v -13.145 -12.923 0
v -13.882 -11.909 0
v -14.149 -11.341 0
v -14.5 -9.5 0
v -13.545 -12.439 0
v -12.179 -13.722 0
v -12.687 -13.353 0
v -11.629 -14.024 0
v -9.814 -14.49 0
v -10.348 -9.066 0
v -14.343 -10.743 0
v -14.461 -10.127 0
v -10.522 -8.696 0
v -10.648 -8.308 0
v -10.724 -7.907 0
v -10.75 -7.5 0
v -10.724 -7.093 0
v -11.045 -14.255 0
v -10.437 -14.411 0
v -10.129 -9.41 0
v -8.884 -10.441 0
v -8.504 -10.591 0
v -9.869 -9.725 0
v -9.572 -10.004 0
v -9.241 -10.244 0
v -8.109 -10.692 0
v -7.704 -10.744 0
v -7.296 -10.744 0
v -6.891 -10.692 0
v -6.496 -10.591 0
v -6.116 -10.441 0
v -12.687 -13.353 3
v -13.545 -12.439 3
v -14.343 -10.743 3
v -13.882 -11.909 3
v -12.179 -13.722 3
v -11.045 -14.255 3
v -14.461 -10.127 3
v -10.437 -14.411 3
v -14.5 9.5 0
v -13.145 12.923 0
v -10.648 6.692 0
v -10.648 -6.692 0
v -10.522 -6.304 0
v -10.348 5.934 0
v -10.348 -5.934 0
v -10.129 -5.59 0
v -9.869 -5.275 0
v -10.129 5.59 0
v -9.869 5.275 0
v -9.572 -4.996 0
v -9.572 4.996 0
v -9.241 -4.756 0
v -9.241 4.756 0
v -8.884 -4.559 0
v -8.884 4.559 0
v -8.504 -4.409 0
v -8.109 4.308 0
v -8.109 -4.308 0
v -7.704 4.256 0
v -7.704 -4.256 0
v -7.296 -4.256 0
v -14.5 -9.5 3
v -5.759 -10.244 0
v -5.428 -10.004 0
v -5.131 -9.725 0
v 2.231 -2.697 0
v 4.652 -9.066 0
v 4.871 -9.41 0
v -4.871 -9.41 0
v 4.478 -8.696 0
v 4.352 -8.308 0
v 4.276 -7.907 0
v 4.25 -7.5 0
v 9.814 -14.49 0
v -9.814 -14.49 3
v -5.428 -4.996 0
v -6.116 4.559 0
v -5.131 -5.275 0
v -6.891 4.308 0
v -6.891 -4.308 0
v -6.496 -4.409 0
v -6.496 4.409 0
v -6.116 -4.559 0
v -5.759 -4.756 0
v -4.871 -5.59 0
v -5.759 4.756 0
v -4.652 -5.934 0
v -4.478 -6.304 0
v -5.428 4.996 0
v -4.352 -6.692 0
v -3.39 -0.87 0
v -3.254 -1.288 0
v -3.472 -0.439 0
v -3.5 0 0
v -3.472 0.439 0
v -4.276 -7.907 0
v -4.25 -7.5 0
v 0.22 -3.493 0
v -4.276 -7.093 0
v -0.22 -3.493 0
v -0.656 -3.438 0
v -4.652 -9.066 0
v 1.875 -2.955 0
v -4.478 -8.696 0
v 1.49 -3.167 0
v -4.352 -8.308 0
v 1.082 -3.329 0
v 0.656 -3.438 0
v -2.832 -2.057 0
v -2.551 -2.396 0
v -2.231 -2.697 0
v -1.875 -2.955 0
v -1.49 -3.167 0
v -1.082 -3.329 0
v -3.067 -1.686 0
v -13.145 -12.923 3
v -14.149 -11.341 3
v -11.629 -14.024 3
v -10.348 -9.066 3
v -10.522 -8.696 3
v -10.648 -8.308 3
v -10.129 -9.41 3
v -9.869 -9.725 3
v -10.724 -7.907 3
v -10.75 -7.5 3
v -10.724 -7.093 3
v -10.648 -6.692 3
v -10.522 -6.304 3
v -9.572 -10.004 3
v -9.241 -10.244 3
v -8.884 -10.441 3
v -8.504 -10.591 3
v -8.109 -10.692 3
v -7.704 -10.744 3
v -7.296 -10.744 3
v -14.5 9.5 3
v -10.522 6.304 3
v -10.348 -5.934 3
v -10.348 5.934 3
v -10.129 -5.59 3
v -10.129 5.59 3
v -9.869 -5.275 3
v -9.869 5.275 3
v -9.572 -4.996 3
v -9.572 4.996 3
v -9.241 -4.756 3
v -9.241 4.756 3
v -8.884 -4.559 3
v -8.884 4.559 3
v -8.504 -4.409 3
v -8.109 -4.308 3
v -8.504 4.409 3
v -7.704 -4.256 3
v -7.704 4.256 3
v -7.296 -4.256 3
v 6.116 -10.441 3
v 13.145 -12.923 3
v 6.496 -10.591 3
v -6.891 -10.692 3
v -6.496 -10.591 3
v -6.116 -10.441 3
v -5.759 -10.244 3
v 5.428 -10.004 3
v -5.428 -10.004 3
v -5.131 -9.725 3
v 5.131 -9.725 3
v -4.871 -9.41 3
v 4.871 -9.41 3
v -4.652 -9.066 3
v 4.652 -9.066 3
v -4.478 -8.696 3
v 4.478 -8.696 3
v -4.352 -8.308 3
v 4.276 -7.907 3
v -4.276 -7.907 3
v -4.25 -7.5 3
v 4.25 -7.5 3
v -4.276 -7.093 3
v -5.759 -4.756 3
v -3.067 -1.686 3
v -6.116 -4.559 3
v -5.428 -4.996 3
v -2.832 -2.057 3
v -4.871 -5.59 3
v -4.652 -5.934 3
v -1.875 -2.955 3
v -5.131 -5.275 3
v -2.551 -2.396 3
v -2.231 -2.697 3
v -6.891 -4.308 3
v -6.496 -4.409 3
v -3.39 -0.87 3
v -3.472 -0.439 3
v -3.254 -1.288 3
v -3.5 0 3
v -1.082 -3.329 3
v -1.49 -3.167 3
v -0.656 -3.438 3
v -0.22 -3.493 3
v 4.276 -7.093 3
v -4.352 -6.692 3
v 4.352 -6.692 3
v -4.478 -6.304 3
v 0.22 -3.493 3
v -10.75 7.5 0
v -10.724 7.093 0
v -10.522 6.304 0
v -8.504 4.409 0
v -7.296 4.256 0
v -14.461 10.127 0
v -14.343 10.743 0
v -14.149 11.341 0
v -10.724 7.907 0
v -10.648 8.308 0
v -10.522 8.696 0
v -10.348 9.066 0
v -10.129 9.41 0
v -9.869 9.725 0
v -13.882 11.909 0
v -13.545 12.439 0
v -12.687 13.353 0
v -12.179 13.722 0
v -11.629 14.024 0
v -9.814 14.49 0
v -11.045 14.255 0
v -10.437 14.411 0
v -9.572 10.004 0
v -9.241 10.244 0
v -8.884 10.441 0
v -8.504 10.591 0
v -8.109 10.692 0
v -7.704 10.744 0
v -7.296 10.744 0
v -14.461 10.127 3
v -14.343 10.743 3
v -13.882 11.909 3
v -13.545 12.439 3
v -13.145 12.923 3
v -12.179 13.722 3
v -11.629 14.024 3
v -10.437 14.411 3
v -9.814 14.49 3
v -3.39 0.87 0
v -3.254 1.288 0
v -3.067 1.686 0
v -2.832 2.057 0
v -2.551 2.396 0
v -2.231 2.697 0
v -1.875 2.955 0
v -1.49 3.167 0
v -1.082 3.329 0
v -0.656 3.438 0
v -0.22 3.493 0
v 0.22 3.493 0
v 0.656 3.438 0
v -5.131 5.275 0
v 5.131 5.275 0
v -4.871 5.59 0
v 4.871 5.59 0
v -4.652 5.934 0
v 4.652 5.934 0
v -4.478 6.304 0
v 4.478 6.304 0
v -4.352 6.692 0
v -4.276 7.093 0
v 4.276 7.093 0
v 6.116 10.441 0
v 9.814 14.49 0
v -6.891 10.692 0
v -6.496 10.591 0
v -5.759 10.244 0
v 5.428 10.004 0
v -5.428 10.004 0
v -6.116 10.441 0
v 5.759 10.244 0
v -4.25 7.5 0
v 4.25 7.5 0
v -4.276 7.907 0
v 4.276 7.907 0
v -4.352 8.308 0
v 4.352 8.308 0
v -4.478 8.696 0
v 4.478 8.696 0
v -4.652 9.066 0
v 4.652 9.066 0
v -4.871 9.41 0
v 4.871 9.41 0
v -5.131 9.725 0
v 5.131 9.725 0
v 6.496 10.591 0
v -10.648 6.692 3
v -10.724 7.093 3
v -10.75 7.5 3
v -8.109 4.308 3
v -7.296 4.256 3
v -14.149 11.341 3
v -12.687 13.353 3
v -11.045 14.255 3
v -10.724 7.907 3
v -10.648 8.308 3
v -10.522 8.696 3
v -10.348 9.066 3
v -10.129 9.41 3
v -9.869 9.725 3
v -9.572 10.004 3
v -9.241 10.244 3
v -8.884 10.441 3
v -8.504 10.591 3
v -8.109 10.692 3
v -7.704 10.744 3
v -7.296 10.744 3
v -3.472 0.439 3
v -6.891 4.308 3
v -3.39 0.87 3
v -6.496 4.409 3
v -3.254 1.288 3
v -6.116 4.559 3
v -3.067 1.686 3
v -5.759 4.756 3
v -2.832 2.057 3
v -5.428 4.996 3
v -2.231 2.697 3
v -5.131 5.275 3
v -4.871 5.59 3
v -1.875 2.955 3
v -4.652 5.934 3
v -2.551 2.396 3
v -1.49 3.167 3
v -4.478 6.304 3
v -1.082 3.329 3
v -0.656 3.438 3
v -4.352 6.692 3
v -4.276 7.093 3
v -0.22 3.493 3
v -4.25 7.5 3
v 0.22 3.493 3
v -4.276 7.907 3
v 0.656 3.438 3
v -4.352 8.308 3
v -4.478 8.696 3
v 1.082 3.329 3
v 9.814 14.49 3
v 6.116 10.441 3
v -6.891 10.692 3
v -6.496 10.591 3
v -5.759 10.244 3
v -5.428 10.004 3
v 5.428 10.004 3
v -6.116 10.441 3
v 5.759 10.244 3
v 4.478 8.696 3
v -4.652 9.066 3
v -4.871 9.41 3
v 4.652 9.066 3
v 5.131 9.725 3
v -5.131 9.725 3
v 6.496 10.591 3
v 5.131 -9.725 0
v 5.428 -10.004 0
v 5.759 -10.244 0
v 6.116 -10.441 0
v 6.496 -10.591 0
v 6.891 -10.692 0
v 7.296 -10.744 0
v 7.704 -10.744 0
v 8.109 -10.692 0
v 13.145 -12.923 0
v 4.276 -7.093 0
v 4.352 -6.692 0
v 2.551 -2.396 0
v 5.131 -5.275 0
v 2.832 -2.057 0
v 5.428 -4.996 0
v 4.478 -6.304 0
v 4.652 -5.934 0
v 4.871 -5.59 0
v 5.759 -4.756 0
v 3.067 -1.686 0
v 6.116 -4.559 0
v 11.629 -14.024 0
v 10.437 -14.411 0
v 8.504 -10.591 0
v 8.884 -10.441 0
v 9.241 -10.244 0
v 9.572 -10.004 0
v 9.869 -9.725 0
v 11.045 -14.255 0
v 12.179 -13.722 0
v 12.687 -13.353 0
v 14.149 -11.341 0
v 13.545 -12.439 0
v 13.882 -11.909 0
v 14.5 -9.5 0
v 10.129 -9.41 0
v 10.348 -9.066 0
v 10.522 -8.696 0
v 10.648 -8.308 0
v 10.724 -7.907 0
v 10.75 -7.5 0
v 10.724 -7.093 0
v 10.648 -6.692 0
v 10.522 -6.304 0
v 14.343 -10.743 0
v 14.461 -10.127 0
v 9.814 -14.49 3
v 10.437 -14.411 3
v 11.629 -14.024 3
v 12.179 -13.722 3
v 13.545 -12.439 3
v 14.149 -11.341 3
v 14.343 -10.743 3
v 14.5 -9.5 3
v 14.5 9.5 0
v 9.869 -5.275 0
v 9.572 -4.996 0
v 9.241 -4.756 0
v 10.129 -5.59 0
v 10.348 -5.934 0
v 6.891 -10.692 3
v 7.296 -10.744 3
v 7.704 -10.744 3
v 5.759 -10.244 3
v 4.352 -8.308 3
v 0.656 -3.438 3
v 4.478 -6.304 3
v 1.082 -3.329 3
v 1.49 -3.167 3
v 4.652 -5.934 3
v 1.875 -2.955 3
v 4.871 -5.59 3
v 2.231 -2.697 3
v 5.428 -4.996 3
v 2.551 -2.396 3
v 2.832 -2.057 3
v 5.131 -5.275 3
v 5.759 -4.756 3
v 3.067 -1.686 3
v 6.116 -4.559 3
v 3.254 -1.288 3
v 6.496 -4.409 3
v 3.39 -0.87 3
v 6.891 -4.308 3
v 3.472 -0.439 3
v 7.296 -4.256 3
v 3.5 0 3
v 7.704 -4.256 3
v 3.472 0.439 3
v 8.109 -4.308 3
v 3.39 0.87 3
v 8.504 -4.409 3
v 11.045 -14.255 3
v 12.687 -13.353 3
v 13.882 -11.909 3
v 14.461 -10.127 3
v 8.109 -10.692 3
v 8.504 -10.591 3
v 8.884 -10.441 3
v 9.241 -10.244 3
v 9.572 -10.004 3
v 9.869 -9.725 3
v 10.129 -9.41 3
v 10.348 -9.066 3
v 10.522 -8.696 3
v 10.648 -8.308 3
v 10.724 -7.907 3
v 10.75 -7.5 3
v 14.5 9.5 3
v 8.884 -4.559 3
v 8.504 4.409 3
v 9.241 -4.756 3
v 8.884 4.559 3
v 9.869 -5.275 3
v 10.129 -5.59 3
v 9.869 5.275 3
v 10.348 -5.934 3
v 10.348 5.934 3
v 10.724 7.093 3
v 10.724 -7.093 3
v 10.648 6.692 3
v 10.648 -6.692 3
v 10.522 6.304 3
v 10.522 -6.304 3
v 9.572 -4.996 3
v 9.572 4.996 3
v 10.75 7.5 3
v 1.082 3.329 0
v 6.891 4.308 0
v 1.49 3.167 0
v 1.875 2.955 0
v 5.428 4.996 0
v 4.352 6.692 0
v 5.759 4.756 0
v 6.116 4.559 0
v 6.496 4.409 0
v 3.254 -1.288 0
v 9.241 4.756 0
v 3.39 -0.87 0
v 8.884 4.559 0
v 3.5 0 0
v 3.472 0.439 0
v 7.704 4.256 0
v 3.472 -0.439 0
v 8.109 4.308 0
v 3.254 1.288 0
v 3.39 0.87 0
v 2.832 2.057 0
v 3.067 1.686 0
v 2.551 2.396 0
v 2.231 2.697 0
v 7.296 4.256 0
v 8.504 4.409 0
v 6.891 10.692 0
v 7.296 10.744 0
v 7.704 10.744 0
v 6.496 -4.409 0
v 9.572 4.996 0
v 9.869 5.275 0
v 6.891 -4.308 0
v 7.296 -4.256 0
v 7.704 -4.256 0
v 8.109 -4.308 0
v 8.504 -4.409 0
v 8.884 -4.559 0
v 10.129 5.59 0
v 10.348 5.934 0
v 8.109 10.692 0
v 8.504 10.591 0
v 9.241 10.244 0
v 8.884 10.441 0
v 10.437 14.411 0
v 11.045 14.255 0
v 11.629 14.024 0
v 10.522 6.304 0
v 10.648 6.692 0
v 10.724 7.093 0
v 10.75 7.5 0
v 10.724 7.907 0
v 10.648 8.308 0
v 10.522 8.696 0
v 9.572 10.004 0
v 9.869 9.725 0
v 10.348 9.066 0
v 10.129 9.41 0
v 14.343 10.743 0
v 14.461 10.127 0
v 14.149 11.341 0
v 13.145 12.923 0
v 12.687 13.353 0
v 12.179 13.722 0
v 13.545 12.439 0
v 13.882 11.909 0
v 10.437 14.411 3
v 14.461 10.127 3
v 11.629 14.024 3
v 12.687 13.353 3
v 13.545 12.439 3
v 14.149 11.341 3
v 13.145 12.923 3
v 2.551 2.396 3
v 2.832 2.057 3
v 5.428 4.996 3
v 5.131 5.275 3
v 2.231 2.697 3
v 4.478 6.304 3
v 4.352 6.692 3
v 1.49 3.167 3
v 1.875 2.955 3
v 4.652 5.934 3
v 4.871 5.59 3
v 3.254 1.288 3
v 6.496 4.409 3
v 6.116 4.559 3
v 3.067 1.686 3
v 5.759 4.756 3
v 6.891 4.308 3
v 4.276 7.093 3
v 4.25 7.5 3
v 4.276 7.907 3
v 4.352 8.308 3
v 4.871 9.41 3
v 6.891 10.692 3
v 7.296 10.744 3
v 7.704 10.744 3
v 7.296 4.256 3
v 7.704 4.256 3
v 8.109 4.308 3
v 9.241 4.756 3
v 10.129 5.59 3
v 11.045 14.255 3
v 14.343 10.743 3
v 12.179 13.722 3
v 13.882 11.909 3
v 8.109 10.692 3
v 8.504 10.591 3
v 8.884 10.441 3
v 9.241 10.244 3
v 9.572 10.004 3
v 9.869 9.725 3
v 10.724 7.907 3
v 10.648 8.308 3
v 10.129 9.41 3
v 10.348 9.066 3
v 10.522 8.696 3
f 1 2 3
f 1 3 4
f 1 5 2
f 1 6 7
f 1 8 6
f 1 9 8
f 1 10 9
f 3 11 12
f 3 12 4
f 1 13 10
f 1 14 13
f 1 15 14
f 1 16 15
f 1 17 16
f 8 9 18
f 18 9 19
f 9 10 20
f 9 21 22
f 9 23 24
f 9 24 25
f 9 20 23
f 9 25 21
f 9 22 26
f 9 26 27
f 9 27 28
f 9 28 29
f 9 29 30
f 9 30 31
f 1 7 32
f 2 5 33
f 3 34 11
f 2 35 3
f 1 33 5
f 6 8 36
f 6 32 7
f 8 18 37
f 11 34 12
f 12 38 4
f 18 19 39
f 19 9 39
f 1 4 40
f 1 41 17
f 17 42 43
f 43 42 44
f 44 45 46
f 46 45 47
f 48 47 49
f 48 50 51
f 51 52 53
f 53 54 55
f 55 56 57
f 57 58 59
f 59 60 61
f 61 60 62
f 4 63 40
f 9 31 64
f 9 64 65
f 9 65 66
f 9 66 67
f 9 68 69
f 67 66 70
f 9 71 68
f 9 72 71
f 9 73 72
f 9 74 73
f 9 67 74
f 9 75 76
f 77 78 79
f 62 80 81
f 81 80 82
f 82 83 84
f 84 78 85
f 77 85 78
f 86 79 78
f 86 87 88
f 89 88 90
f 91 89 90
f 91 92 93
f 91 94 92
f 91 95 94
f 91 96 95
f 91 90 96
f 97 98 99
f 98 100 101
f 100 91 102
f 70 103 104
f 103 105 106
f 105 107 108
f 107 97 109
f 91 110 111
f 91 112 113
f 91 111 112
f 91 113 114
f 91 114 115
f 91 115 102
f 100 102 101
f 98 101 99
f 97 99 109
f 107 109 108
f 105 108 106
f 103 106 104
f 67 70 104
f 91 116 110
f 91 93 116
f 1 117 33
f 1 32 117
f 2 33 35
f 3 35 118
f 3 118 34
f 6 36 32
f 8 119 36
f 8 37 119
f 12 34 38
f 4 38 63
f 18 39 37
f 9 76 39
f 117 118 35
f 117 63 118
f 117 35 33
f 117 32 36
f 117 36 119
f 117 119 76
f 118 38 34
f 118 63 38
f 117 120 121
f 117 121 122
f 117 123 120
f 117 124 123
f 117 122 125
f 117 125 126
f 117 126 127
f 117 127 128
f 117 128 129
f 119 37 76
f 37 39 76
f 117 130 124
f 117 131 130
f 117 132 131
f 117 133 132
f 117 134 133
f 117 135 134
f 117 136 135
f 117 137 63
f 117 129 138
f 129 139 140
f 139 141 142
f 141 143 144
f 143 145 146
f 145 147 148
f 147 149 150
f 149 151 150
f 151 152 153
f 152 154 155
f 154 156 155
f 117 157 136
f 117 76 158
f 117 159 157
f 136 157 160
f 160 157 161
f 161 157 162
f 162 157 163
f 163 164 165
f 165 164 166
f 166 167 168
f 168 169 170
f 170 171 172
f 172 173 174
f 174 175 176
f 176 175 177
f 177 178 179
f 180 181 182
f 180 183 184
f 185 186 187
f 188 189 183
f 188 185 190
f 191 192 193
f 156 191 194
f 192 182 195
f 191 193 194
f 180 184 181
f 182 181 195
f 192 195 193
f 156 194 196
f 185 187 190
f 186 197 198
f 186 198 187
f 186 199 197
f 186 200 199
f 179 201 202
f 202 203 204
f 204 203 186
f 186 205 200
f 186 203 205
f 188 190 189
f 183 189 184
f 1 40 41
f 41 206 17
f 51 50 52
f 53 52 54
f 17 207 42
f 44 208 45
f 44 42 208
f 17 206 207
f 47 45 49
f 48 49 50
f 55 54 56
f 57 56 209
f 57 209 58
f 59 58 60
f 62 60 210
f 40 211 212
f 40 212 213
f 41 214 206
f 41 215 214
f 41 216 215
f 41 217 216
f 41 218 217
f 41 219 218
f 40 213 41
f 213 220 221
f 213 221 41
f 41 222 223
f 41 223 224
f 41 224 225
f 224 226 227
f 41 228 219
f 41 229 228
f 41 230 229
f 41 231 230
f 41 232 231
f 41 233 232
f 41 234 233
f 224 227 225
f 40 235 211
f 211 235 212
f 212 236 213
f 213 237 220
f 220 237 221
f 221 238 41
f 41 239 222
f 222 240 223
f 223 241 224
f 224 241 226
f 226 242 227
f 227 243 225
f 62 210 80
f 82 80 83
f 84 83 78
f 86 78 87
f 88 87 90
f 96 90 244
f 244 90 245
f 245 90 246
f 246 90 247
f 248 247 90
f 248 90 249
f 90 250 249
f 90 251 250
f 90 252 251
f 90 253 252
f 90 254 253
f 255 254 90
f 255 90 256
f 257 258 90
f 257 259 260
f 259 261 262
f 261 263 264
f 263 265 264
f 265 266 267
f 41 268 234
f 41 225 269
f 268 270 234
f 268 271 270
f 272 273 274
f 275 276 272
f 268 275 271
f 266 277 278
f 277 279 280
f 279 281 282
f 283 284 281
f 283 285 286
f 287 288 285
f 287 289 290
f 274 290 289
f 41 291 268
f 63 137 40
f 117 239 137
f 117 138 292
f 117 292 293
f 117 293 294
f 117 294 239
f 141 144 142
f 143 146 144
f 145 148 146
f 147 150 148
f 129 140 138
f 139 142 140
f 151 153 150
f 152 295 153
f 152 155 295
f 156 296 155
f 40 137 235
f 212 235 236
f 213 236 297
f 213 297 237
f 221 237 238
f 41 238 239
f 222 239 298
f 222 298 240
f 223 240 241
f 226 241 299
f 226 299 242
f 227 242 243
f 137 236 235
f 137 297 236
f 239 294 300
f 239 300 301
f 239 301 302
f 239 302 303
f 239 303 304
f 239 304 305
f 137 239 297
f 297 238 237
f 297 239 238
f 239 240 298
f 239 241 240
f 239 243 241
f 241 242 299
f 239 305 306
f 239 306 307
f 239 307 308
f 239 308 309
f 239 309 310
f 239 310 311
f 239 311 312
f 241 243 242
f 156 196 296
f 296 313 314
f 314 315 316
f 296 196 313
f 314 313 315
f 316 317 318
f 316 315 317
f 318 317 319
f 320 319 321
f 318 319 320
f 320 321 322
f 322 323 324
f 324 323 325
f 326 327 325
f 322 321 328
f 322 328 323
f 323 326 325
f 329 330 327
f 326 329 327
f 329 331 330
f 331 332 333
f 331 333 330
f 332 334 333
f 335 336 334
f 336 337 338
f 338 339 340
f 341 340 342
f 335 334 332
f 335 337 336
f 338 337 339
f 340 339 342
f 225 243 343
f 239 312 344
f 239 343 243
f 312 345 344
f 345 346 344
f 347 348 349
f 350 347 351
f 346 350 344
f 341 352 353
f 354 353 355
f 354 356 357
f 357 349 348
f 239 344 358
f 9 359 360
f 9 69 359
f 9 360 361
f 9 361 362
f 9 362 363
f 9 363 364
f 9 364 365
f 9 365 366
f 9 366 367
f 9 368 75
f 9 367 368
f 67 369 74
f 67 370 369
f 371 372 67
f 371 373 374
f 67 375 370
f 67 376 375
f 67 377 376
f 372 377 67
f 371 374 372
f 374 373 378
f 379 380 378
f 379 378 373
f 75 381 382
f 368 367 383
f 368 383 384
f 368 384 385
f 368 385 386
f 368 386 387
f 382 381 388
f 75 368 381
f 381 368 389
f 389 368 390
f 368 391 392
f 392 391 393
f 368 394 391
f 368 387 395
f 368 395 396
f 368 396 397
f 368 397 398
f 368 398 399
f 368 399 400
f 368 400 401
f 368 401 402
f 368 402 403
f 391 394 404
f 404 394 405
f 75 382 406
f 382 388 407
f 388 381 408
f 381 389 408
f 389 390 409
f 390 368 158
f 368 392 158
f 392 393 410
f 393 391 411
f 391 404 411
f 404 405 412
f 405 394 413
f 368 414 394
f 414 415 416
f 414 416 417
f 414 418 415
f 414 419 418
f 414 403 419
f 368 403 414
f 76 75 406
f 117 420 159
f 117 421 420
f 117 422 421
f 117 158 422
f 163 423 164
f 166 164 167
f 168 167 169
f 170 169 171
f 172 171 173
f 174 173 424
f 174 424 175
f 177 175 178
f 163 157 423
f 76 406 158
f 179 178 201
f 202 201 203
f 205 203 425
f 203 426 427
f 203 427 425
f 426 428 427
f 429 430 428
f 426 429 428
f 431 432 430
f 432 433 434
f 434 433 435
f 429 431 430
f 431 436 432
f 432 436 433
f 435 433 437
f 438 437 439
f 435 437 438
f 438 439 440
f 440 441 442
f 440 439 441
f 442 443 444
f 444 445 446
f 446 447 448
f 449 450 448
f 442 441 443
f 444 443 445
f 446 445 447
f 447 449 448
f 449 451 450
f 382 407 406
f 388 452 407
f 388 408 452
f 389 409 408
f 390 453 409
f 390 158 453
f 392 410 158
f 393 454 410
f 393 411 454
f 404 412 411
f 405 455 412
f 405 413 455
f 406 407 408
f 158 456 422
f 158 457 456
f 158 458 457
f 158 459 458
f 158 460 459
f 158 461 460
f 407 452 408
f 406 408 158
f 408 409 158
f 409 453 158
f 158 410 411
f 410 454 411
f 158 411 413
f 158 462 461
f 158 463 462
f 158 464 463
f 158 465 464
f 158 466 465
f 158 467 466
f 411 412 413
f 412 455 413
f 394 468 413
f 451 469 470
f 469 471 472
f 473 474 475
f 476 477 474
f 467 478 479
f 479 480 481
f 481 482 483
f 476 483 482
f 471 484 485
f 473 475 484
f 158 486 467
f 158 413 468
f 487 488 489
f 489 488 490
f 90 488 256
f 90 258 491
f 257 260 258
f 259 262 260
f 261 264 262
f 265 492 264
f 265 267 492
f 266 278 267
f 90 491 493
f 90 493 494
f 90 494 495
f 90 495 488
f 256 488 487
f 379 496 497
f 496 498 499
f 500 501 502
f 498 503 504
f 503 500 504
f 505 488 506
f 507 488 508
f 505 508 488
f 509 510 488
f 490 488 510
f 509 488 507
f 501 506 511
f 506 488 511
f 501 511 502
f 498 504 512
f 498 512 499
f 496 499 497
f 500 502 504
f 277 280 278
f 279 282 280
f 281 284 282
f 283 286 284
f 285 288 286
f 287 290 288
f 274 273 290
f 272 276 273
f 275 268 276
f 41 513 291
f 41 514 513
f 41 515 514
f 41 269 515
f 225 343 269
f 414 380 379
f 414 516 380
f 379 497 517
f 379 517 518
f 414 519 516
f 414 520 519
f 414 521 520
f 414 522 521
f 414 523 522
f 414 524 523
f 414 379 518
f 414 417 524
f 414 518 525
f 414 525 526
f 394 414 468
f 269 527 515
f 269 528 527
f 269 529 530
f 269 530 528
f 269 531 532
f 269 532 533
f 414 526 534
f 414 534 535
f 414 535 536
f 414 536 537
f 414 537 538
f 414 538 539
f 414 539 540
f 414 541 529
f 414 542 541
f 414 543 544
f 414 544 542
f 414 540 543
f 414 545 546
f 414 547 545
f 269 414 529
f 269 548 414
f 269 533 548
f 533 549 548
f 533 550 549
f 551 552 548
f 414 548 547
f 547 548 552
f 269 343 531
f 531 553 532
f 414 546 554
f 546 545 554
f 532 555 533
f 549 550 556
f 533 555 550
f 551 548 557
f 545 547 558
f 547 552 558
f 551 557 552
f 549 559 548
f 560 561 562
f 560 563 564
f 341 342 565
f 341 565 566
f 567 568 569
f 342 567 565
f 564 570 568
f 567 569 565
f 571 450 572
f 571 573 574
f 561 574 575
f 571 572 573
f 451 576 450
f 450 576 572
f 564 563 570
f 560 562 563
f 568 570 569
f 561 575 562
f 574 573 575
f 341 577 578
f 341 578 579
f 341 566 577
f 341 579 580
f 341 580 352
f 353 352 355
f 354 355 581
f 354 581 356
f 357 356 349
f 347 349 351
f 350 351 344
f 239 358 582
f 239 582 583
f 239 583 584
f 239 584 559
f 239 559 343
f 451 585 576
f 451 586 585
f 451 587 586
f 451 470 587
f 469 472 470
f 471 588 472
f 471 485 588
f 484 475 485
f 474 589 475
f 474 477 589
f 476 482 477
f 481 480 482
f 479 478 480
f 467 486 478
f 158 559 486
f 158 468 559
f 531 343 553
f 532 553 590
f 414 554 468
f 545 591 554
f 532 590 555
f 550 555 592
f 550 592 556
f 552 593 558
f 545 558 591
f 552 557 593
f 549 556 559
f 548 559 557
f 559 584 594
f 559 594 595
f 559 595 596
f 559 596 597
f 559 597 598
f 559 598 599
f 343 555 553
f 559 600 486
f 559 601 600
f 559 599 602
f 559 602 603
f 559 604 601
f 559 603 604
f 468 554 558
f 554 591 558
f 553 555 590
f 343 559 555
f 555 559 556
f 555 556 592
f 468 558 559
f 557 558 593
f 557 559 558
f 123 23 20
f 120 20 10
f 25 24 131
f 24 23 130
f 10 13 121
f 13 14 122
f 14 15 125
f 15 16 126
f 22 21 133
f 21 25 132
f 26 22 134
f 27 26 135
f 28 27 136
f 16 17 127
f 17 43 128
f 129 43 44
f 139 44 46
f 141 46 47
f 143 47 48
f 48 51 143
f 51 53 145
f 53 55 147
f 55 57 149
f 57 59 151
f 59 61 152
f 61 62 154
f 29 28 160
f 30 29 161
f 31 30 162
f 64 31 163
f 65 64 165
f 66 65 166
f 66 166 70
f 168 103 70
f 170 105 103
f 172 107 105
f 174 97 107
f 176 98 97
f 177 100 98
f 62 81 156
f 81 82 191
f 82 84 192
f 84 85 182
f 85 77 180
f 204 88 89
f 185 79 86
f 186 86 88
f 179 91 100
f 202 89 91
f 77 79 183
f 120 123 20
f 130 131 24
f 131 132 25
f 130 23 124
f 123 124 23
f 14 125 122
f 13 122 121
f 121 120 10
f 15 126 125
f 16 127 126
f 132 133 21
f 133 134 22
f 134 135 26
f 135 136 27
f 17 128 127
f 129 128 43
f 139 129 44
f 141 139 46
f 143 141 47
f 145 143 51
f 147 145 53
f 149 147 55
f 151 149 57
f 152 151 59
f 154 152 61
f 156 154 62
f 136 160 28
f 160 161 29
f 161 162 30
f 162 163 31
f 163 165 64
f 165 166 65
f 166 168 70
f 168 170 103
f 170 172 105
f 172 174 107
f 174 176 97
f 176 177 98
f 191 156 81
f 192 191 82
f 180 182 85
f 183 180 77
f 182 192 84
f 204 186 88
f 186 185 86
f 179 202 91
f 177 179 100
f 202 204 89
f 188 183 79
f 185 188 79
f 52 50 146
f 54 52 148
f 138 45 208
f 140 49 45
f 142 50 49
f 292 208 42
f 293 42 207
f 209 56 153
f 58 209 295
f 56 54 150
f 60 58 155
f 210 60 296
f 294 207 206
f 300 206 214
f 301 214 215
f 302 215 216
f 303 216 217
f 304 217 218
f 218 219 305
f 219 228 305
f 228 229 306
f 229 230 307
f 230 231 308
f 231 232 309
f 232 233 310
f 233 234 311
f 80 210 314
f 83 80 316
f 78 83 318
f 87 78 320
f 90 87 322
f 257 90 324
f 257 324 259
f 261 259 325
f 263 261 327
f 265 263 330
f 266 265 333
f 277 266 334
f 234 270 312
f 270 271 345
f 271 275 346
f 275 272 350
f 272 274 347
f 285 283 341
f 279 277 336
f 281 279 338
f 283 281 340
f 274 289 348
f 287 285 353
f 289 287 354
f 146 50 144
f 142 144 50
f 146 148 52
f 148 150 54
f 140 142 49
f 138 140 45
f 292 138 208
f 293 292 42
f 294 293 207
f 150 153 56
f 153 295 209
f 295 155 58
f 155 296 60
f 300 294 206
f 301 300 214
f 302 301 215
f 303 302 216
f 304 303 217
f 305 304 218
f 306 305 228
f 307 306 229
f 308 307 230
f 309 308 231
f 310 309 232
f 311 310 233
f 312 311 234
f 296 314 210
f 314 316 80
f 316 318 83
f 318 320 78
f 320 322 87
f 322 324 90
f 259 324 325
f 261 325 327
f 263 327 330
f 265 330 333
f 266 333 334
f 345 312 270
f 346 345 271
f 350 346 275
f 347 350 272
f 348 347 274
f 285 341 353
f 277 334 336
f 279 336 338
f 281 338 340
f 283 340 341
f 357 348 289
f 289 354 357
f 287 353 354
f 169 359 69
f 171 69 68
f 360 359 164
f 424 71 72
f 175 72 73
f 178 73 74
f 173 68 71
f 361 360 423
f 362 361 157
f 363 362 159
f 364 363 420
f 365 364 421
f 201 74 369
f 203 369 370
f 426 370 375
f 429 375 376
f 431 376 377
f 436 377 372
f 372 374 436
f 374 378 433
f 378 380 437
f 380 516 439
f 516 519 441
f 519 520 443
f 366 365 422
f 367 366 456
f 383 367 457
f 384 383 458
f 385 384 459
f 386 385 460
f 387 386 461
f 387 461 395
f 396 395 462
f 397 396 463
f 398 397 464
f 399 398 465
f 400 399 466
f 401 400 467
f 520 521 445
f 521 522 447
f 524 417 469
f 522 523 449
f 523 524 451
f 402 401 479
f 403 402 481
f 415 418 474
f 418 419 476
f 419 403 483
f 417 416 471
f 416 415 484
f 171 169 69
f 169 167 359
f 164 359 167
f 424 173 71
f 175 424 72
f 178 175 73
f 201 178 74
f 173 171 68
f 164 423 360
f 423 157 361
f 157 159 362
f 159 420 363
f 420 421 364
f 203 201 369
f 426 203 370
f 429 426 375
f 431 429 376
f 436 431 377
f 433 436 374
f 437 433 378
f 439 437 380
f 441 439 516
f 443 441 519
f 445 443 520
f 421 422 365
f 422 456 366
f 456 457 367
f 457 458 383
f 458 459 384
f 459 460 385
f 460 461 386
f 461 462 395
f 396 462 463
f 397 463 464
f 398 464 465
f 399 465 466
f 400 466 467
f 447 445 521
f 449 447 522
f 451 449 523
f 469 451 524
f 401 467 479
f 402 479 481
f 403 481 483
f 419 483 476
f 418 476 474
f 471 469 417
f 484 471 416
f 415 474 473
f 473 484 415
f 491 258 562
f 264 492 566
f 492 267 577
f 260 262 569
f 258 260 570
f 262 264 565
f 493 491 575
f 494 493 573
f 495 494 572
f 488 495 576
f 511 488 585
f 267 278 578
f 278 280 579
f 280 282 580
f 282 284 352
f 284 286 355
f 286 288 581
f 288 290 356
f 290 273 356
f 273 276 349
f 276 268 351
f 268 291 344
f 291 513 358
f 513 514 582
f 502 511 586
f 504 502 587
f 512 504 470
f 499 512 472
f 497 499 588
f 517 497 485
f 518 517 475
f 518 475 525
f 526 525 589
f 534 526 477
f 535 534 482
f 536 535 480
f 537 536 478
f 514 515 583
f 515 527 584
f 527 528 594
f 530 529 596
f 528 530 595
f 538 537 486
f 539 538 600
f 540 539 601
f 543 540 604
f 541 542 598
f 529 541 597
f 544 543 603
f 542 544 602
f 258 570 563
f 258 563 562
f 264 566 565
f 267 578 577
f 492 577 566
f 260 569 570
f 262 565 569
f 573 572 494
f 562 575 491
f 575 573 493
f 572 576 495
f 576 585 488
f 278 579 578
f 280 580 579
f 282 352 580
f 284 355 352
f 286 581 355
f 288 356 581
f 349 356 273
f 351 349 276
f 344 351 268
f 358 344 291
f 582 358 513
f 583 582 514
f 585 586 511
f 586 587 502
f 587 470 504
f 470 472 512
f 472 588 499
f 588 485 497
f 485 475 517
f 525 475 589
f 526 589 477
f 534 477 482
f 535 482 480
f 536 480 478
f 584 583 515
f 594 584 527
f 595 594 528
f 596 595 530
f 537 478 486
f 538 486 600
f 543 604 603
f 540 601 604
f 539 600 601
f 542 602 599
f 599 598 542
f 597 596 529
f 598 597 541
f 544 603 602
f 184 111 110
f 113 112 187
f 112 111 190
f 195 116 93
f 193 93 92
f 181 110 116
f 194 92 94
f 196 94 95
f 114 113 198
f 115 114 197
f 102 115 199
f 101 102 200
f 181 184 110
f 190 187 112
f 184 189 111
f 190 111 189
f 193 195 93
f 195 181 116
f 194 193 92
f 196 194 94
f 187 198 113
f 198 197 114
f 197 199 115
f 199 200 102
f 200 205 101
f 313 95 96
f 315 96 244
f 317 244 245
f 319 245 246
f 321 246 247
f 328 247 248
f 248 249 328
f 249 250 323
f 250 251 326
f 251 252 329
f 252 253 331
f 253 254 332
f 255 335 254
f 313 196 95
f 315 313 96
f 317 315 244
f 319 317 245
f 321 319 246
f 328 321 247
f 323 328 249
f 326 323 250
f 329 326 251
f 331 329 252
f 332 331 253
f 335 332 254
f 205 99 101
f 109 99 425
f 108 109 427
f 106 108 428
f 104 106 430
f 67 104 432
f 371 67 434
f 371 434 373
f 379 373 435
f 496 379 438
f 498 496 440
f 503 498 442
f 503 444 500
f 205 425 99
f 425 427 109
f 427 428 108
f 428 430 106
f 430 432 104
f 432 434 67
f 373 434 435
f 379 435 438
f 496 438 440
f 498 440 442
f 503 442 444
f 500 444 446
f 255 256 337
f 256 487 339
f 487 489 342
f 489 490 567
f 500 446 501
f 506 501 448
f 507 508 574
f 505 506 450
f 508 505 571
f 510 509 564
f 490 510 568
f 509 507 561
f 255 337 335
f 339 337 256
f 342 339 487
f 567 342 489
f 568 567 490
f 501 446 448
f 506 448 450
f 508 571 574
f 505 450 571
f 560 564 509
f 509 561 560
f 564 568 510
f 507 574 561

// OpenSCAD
$fn = 50;

difference() {
	union() {
		hull() {
			translate(v = [-9.5, 9.5, 0]) {
				cylinder(h = 3, r = 5);
			}
			translate(v = [9.5, 9.5, 0]) {
				cylinder(h = 3, r = 5);
			}
			translate(v = [-9.5, -9.5, 0]) {
				cylinder(h = 3, r = 5);
			}
			translate(v = [9.5, -9.5, 0]) {
				cylinder(h = 3, r = 5);
			}
		}
	}
	union() {
		translate(v = [-7.5, -7.5, 0]) {
			cylinder(h = 3, r = 3.25);
		}
		translate(v = [-7.5, 7.5, 0]) {
			cylinder(h = 3, r = 3.25);
		}
		translate(v = [7.5, -7.5, 0]) {
			cylinder(h = 3, r = 3.25);
		}
		translate(v = [7.5, 7.5, 0]) {
			cylinder(h = 3, r = 3.25);
		}
		cylinder(h = 3, r = 3.5);
	}
}
